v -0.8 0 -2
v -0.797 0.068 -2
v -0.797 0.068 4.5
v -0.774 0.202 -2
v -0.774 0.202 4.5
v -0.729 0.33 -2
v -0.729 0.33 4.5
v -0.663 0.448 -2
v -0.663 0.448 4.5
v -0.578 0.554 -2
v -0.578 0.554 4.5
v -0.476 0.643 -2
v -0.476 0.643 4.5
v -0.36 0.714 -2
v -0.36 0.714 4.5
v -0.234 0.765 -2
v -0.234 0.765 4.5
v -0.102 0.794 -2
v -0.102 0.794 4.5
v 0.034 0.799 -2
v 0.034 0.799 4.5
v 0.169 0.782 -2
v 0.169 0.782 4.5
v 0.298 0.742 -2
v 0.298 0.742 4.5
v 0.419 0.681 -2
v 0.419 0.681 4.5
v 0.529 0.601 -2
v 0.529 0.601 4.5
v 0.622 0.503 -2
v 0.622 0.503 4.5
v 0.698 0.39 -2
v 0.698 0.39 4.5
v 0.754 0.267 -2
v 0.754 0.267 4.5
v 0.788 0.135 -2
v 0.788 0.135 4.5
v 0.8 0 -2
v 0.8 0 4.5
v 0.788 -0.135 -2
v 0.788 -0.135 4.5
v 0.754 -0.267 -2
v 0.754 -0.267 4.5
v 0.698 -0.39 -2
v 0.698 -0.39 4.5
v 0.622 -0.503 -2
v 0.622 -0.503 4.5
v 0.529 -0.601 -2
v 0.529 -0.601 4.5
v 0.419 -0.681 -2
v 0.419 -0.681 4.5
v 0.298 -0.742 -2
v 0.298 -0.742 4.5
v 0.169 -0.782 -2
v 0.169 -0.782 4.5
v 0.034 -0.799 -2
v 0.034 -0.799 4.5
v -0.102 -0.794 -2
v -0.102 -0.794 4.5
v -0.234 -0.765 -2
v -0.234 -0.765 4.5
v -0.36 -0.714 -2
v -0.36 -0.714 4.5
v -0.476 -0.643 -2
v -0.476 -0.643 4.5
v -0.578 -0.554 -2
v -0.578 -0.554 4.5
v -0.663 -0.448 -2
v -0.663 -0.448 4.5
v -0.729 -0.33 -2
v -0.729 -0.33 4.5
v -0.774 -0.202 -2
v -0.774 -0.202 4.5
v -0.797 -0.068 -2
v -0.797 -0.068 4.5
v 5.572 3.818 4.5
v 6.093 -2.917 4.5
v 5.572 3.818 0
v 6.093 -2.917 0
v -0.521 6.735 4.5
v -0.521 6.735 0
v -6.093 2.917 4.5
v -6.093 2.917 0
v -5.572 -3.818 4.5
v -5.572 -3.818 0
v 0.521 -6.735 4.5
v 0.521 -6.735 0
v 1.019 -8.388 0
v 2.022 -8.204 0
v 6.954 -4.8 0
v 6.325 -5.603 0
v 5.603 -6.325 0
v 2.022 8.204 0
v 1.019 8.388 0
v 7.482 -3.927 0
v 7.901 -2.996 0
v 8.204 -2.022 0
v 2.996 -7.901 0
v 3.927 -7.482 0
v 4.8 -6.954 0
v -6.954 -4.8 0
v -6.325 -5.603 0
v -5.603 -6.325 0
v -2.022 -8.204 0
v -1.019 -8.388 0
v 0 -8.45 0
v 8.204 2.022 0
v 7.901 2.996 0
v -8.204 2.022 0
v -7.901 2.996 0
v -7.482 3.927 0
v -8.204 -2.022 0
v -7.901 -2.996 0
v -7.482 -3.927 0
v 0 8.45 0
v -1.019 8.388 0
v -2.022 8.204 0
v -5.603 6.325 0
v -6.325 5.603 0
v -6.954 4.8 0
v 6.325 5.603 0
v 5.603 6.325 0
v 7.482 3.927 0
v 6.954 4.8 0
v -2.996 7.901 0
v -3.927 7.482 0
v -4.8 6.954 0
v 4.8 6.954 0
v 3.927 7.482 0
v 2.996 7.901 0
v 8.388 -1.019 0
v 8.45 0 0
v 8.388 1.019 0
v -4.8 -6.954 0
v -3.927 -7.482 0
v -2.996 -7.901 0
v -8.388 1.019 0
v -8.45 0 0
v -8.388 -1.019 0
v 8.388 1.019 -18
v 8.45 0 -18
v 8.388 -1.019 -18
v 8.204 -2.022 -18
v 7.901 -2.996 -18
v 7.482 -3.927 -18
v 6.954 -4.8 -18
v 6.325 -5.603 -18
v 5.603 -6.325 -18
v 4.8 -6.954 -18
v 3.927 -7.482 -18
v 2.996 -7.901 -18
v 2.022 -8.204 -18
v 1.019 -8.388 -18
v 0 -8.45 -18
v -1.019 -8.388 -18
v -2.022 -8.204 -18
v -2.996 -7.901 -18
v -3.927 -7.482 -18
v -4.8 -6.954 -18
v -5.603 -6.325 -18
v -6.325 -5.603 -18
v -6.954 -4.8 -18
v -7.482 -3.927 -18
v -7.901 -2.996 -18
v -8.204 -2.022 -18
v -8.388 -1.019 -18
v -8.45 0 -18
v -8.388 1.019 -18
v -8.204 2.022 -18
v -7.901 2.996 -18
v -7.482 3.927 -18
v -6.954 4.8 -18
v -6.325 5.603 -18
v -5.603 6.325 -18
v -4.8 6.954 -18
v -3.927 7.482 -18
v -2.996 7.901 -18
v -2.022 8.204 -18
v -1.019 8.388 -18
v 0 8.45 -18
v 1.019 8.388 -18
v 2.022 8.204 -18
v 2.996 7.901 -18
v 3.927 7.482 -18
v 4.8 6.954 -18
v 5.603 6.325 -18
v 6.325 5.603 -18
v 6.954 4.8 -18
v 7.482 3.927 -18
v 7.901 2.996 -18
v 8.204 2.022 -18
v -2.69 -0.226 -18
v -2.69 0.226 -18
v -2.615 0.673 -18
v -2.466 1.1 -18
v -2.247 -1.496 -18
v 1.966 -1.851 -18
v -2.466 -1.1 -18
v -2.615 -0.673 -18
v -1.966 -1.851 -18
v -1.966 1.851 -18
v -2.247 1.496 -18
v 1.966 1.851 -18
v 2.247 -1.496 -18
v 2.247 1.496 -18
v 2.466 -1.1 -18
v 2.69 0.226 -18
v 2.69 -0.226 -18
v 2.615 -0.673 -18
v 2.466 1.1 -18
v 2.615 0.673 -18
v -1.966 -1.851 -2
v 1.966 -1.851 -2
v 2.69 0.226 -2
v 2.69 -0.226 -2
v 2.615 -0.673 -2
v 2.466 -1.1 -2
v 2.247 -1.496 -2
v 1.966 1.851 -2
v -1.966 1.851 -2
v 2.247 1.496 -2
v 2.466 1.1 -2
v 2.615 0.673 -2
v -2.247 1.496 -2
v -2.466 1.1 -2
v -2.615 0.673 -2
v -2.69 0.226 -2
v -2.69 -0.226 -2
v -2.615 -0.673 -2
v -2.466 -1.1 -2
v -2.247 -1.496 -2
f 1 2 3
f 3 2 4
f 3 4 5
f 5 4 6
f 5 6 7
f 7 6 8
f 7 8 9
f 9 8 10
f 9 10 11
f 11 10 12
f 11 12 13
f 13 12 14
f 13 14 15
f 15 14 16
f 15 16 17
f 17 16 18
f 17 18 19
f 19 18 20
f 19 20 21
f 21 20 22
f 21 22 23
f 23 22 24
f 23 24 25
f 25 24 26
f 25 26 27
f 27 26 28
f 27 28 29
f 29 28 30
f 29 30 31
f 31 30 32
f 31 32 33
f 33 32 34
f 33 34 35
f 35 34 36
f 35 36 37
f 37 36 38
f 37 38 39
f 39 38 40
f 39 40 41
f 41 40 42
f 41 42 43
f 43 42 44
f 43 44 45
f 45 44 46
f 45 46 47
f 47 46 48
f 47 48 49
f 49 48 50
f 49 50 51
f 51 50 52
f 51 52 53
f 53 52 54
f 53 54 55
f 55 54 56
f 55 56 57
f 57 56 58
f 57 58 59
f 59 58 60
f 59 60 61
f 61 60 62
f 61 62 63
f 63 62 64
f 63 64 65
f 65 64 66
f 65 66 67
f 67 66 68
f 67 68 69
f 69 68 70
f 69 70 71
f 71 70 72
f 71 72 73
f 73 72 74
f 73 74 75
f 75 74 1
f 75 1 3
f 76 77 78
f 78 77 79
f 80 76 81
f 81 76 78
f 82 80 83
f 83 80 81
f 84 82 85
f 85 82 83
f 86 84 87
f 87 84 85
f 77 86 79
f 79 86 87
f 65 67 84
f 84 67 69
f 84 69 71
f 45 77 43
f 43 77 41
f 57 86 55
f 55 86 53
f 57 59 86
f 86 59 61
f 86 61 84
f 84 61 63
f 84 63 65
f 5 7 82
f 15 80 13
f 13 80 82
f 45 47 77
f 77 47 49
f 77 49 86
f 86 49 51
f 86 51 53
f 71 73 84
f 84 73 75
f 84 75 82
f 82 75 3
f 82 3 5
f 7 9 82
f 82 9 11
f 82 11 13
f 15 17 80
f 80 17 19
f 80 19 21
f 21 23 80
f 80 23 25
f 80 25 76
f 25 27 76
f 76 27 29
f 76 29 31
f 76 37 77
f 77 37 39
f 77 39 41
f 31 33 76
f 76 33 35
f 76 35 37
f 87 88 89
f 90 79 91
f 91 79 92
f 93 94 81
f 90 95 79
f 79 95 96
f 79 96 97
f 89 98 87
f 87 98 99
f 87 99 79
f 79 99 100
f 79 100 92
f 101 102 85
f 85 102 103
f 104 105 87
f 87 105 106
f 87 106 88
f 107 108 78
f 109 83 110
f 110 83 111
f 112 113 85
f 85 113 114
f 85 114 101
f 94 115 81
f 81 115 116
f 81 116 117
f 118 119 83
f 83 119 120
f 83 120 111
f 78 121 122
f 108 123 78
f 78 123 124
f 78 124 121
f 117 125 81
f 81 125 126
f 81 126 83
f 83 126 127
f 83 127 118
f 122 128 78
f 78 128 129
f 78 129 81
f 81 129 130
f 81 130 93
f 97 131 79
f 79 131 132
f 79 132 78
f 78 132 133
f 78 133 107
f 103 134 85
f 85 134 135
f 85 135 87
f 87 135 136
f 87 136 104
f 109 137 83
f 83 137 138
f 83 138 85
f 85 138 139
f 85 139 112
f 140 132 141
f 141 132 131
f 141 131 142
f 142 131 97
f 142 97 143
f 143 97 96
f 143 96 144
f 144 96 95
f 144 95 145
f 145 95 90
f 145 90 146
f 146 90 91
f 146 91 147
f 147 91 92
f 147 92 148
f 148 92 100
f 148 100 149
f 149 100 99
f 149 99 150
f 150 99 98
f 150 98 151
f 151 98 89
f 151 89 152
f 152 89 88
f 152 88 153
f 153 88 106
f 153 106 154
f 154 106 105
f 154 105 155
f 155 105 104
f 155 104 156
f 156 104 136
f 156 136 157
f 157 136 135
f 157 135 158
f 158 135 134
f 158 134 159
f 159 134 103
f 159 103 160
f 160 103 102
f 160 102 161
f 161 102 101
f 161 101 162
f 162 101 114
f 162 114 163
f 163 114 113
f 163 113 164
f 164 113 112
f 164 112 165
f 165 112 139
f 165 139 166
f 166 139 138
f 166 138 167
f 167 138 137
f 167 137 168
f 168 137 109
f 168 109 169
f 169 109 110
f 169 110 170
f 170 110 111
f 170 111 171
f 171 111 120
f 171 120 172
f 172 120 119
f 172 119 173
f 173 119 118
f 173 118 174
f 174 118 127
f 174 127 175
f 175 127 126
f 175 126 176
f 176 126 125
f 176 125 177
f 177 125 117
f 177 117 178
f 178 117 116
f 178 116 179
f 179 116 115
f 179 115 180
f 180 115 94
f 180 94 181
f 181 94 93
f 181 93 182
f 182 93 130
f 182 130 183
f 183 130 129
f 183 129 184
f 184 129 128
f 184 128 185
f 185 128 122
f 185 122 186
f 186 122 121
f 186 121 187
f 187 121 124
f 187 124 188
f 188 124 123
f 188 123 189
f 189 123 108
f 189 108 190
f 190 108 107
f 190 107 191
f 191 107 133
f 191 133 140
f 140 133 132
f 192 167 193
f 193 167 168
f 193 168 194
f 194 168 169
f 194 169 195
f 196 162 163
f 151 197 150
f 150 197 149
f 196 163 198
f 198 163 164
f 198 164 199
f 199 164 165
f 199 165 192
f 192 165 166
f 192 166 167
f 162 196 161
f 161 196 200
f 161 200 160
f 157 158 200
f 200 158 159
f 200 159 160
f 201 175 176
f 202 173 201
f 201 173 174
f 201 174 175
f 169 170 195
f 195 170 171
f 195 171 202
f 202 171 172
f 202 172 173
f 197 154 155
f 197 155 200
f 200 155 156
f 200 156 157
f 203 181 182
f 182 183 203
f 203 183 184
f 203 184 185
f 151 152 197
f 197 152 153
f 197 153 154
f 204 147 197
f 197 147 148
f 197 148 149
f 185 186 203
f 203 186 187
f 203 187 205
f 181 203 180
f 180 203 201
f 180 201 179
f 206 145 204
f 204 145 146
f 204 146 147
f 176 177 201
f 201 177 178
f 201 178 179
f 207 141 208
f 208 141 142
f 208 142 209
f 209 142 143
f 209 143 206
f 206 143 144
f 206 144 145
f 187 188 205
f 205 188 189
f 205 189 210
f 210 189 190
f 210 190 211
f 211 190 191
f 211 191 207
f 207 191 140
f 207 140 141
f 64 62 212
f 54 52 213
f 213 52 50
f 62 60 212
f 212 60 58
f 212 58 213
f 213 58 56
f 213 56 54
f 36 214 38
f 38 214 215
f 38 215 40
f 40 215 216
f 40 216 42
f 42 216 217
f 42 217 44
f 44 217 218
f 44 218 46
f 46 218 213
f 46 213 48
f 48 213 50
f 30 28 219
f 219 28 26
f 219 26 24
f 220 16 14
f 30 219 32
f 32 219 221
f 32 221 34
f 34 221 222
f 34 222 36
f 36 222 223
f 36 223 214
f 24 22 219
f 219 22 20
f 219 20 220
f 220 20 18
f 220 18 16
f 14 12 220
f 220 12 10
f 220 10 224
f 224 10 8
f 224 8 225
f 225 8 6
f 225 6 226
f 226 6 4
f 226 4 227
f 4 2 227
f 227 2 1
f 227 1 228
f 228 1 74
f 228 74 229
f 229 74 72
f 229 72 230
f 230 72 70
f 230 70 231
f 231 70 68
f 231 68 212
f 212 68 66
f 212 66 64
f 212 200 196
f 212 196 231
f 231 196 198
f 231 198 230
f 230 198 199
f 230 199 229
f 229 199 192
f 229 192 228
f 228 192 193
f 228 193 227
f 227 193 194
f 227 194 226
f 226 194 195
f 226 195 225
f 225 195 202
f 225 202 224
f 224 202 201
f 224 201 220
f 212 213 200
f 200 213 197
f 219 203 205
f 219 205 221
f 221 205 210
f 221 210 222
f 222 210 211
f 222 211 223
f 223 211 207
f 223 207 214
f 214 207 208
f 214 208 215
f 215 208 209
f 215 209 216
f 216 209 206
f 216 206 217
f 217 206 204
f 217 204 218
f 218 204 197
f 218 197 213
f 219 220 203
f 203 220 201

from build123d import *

# Parameters (mm, degrees)
BOSS_EXTRUDE1_DEPTH = 4.5
SKETCH4_R           = 8.45
BOSS_EXTRUDE2_DEPTH = 18
BOSS_EXTRUDE3_DEPTH = 4.5
SKETCH2_R           = 0.8
CUT_EXTRUDE2_DEPTH  = 6.5
BOSS_EXTRUDE4_DEPTH = 4.5
SKETCH2_2_R         = 0.8
CUT_EXTRUDE4_DEPTH  = 6
CUT_EXTRUDE5_DEPTH  = 16


with BuildPart() as part:
    # Sketch1 → Boss-Extrude1 (new body)
    with BuildSketch(Plane.XY):
        Polygon((5.572251372, 3.818378537), (-0.520687129, 6.734900513), (-6.0929385, 2.916521976), (-5.572251372, -3.818378537), (0.520687129, -6.734900513), (6.0929385, -2.916521976), align=None)
    extrude(amount=BOSS_EXTRUDE1_DEPTH)

    # Sketch4 → Boss-Extrude2 (add)
    with BuildSketch(Plane(origin=(0, 0, 0), x_dir=(-1, 0, 0), z_dir=(0, 0, -1))):
        Circle(SKETCH4_R)
    extrude(amount=BOSS_EXTRUDE2_DEPTH)

    # Sketch1<2> → Boss-Extrude3 (add)
    with BuildSketch(Plane.XY):
        Polygon((5.572251372, 3.818378537), (-0.520687129, 6.734900513), (-6.0929385, 2.916521976), (-5.572251372, -3.818378537), (0.520687129, -6.734900513), (6.0929385, -2.916521976), align=None)
    extrude(amount=BOSS_EXTRUDE3_DEPTH)

    # Sketch2 → Cut-Extrude2 (cut)
    with BuildSketch(Plane.XY.offset(4.5)):
        Circle(SKETCH2_R)
    extrude(amount=-CUT_EXTRUDE2_DEPTH, mode=Mode.SUBTRACT)

    # Sketch1<3> → Boss-Extrude4 (add)
    with BuildSketch(Plane.XY):
        Polygon((5.572251372, 3.818378537), (-0.520687129, 6.734900513), (-6.0929385, 2.916521976), (-5.572251372, -3.818378537), (0.520687129, -6.734900513), (6.0929385, -2.916521976), align=None)
    extrude(amount=BOSS_EXTRUDE4_DEPTH)

    # Sketch2<2> → Cut-Extrude4 (cut)
    with BuildSketch(Plane.XY.offset(4.5)):
        Circle(SKETCH2_2_R)
    extrude(amount=-CUT_EXTRUDE4_DEPTH, mode=Mode.SUBTRACT)

    # Sketch5 → Cut-Extrude5 (cut)
    with BuildSketch(Plane(origin=(0, 0, -18), x_dir=(-1, 0, 0), z_dir=(0, 0, -1))):
        with BuildLine():
            Line((-1.965909199, -1.850729862), (1.965909199, -1.850729862))
            ThreePointArc((1.965909199, -1.850729862), (2.7, 0), (1.965909199, 1.850729862))
            Line((1.965909199, 1.850729862), (-1.965909199, 1.850729862))
            ThreePointArc((-1.965909199, 1.850729862), (-2.7, 0), (-1.965909199, -1.850729862))
        make_face()
    extrude(amount=-CUT_EXTRUDE5_DEPTH, mode=Mode.SUBTRACT)


solid = part.part
